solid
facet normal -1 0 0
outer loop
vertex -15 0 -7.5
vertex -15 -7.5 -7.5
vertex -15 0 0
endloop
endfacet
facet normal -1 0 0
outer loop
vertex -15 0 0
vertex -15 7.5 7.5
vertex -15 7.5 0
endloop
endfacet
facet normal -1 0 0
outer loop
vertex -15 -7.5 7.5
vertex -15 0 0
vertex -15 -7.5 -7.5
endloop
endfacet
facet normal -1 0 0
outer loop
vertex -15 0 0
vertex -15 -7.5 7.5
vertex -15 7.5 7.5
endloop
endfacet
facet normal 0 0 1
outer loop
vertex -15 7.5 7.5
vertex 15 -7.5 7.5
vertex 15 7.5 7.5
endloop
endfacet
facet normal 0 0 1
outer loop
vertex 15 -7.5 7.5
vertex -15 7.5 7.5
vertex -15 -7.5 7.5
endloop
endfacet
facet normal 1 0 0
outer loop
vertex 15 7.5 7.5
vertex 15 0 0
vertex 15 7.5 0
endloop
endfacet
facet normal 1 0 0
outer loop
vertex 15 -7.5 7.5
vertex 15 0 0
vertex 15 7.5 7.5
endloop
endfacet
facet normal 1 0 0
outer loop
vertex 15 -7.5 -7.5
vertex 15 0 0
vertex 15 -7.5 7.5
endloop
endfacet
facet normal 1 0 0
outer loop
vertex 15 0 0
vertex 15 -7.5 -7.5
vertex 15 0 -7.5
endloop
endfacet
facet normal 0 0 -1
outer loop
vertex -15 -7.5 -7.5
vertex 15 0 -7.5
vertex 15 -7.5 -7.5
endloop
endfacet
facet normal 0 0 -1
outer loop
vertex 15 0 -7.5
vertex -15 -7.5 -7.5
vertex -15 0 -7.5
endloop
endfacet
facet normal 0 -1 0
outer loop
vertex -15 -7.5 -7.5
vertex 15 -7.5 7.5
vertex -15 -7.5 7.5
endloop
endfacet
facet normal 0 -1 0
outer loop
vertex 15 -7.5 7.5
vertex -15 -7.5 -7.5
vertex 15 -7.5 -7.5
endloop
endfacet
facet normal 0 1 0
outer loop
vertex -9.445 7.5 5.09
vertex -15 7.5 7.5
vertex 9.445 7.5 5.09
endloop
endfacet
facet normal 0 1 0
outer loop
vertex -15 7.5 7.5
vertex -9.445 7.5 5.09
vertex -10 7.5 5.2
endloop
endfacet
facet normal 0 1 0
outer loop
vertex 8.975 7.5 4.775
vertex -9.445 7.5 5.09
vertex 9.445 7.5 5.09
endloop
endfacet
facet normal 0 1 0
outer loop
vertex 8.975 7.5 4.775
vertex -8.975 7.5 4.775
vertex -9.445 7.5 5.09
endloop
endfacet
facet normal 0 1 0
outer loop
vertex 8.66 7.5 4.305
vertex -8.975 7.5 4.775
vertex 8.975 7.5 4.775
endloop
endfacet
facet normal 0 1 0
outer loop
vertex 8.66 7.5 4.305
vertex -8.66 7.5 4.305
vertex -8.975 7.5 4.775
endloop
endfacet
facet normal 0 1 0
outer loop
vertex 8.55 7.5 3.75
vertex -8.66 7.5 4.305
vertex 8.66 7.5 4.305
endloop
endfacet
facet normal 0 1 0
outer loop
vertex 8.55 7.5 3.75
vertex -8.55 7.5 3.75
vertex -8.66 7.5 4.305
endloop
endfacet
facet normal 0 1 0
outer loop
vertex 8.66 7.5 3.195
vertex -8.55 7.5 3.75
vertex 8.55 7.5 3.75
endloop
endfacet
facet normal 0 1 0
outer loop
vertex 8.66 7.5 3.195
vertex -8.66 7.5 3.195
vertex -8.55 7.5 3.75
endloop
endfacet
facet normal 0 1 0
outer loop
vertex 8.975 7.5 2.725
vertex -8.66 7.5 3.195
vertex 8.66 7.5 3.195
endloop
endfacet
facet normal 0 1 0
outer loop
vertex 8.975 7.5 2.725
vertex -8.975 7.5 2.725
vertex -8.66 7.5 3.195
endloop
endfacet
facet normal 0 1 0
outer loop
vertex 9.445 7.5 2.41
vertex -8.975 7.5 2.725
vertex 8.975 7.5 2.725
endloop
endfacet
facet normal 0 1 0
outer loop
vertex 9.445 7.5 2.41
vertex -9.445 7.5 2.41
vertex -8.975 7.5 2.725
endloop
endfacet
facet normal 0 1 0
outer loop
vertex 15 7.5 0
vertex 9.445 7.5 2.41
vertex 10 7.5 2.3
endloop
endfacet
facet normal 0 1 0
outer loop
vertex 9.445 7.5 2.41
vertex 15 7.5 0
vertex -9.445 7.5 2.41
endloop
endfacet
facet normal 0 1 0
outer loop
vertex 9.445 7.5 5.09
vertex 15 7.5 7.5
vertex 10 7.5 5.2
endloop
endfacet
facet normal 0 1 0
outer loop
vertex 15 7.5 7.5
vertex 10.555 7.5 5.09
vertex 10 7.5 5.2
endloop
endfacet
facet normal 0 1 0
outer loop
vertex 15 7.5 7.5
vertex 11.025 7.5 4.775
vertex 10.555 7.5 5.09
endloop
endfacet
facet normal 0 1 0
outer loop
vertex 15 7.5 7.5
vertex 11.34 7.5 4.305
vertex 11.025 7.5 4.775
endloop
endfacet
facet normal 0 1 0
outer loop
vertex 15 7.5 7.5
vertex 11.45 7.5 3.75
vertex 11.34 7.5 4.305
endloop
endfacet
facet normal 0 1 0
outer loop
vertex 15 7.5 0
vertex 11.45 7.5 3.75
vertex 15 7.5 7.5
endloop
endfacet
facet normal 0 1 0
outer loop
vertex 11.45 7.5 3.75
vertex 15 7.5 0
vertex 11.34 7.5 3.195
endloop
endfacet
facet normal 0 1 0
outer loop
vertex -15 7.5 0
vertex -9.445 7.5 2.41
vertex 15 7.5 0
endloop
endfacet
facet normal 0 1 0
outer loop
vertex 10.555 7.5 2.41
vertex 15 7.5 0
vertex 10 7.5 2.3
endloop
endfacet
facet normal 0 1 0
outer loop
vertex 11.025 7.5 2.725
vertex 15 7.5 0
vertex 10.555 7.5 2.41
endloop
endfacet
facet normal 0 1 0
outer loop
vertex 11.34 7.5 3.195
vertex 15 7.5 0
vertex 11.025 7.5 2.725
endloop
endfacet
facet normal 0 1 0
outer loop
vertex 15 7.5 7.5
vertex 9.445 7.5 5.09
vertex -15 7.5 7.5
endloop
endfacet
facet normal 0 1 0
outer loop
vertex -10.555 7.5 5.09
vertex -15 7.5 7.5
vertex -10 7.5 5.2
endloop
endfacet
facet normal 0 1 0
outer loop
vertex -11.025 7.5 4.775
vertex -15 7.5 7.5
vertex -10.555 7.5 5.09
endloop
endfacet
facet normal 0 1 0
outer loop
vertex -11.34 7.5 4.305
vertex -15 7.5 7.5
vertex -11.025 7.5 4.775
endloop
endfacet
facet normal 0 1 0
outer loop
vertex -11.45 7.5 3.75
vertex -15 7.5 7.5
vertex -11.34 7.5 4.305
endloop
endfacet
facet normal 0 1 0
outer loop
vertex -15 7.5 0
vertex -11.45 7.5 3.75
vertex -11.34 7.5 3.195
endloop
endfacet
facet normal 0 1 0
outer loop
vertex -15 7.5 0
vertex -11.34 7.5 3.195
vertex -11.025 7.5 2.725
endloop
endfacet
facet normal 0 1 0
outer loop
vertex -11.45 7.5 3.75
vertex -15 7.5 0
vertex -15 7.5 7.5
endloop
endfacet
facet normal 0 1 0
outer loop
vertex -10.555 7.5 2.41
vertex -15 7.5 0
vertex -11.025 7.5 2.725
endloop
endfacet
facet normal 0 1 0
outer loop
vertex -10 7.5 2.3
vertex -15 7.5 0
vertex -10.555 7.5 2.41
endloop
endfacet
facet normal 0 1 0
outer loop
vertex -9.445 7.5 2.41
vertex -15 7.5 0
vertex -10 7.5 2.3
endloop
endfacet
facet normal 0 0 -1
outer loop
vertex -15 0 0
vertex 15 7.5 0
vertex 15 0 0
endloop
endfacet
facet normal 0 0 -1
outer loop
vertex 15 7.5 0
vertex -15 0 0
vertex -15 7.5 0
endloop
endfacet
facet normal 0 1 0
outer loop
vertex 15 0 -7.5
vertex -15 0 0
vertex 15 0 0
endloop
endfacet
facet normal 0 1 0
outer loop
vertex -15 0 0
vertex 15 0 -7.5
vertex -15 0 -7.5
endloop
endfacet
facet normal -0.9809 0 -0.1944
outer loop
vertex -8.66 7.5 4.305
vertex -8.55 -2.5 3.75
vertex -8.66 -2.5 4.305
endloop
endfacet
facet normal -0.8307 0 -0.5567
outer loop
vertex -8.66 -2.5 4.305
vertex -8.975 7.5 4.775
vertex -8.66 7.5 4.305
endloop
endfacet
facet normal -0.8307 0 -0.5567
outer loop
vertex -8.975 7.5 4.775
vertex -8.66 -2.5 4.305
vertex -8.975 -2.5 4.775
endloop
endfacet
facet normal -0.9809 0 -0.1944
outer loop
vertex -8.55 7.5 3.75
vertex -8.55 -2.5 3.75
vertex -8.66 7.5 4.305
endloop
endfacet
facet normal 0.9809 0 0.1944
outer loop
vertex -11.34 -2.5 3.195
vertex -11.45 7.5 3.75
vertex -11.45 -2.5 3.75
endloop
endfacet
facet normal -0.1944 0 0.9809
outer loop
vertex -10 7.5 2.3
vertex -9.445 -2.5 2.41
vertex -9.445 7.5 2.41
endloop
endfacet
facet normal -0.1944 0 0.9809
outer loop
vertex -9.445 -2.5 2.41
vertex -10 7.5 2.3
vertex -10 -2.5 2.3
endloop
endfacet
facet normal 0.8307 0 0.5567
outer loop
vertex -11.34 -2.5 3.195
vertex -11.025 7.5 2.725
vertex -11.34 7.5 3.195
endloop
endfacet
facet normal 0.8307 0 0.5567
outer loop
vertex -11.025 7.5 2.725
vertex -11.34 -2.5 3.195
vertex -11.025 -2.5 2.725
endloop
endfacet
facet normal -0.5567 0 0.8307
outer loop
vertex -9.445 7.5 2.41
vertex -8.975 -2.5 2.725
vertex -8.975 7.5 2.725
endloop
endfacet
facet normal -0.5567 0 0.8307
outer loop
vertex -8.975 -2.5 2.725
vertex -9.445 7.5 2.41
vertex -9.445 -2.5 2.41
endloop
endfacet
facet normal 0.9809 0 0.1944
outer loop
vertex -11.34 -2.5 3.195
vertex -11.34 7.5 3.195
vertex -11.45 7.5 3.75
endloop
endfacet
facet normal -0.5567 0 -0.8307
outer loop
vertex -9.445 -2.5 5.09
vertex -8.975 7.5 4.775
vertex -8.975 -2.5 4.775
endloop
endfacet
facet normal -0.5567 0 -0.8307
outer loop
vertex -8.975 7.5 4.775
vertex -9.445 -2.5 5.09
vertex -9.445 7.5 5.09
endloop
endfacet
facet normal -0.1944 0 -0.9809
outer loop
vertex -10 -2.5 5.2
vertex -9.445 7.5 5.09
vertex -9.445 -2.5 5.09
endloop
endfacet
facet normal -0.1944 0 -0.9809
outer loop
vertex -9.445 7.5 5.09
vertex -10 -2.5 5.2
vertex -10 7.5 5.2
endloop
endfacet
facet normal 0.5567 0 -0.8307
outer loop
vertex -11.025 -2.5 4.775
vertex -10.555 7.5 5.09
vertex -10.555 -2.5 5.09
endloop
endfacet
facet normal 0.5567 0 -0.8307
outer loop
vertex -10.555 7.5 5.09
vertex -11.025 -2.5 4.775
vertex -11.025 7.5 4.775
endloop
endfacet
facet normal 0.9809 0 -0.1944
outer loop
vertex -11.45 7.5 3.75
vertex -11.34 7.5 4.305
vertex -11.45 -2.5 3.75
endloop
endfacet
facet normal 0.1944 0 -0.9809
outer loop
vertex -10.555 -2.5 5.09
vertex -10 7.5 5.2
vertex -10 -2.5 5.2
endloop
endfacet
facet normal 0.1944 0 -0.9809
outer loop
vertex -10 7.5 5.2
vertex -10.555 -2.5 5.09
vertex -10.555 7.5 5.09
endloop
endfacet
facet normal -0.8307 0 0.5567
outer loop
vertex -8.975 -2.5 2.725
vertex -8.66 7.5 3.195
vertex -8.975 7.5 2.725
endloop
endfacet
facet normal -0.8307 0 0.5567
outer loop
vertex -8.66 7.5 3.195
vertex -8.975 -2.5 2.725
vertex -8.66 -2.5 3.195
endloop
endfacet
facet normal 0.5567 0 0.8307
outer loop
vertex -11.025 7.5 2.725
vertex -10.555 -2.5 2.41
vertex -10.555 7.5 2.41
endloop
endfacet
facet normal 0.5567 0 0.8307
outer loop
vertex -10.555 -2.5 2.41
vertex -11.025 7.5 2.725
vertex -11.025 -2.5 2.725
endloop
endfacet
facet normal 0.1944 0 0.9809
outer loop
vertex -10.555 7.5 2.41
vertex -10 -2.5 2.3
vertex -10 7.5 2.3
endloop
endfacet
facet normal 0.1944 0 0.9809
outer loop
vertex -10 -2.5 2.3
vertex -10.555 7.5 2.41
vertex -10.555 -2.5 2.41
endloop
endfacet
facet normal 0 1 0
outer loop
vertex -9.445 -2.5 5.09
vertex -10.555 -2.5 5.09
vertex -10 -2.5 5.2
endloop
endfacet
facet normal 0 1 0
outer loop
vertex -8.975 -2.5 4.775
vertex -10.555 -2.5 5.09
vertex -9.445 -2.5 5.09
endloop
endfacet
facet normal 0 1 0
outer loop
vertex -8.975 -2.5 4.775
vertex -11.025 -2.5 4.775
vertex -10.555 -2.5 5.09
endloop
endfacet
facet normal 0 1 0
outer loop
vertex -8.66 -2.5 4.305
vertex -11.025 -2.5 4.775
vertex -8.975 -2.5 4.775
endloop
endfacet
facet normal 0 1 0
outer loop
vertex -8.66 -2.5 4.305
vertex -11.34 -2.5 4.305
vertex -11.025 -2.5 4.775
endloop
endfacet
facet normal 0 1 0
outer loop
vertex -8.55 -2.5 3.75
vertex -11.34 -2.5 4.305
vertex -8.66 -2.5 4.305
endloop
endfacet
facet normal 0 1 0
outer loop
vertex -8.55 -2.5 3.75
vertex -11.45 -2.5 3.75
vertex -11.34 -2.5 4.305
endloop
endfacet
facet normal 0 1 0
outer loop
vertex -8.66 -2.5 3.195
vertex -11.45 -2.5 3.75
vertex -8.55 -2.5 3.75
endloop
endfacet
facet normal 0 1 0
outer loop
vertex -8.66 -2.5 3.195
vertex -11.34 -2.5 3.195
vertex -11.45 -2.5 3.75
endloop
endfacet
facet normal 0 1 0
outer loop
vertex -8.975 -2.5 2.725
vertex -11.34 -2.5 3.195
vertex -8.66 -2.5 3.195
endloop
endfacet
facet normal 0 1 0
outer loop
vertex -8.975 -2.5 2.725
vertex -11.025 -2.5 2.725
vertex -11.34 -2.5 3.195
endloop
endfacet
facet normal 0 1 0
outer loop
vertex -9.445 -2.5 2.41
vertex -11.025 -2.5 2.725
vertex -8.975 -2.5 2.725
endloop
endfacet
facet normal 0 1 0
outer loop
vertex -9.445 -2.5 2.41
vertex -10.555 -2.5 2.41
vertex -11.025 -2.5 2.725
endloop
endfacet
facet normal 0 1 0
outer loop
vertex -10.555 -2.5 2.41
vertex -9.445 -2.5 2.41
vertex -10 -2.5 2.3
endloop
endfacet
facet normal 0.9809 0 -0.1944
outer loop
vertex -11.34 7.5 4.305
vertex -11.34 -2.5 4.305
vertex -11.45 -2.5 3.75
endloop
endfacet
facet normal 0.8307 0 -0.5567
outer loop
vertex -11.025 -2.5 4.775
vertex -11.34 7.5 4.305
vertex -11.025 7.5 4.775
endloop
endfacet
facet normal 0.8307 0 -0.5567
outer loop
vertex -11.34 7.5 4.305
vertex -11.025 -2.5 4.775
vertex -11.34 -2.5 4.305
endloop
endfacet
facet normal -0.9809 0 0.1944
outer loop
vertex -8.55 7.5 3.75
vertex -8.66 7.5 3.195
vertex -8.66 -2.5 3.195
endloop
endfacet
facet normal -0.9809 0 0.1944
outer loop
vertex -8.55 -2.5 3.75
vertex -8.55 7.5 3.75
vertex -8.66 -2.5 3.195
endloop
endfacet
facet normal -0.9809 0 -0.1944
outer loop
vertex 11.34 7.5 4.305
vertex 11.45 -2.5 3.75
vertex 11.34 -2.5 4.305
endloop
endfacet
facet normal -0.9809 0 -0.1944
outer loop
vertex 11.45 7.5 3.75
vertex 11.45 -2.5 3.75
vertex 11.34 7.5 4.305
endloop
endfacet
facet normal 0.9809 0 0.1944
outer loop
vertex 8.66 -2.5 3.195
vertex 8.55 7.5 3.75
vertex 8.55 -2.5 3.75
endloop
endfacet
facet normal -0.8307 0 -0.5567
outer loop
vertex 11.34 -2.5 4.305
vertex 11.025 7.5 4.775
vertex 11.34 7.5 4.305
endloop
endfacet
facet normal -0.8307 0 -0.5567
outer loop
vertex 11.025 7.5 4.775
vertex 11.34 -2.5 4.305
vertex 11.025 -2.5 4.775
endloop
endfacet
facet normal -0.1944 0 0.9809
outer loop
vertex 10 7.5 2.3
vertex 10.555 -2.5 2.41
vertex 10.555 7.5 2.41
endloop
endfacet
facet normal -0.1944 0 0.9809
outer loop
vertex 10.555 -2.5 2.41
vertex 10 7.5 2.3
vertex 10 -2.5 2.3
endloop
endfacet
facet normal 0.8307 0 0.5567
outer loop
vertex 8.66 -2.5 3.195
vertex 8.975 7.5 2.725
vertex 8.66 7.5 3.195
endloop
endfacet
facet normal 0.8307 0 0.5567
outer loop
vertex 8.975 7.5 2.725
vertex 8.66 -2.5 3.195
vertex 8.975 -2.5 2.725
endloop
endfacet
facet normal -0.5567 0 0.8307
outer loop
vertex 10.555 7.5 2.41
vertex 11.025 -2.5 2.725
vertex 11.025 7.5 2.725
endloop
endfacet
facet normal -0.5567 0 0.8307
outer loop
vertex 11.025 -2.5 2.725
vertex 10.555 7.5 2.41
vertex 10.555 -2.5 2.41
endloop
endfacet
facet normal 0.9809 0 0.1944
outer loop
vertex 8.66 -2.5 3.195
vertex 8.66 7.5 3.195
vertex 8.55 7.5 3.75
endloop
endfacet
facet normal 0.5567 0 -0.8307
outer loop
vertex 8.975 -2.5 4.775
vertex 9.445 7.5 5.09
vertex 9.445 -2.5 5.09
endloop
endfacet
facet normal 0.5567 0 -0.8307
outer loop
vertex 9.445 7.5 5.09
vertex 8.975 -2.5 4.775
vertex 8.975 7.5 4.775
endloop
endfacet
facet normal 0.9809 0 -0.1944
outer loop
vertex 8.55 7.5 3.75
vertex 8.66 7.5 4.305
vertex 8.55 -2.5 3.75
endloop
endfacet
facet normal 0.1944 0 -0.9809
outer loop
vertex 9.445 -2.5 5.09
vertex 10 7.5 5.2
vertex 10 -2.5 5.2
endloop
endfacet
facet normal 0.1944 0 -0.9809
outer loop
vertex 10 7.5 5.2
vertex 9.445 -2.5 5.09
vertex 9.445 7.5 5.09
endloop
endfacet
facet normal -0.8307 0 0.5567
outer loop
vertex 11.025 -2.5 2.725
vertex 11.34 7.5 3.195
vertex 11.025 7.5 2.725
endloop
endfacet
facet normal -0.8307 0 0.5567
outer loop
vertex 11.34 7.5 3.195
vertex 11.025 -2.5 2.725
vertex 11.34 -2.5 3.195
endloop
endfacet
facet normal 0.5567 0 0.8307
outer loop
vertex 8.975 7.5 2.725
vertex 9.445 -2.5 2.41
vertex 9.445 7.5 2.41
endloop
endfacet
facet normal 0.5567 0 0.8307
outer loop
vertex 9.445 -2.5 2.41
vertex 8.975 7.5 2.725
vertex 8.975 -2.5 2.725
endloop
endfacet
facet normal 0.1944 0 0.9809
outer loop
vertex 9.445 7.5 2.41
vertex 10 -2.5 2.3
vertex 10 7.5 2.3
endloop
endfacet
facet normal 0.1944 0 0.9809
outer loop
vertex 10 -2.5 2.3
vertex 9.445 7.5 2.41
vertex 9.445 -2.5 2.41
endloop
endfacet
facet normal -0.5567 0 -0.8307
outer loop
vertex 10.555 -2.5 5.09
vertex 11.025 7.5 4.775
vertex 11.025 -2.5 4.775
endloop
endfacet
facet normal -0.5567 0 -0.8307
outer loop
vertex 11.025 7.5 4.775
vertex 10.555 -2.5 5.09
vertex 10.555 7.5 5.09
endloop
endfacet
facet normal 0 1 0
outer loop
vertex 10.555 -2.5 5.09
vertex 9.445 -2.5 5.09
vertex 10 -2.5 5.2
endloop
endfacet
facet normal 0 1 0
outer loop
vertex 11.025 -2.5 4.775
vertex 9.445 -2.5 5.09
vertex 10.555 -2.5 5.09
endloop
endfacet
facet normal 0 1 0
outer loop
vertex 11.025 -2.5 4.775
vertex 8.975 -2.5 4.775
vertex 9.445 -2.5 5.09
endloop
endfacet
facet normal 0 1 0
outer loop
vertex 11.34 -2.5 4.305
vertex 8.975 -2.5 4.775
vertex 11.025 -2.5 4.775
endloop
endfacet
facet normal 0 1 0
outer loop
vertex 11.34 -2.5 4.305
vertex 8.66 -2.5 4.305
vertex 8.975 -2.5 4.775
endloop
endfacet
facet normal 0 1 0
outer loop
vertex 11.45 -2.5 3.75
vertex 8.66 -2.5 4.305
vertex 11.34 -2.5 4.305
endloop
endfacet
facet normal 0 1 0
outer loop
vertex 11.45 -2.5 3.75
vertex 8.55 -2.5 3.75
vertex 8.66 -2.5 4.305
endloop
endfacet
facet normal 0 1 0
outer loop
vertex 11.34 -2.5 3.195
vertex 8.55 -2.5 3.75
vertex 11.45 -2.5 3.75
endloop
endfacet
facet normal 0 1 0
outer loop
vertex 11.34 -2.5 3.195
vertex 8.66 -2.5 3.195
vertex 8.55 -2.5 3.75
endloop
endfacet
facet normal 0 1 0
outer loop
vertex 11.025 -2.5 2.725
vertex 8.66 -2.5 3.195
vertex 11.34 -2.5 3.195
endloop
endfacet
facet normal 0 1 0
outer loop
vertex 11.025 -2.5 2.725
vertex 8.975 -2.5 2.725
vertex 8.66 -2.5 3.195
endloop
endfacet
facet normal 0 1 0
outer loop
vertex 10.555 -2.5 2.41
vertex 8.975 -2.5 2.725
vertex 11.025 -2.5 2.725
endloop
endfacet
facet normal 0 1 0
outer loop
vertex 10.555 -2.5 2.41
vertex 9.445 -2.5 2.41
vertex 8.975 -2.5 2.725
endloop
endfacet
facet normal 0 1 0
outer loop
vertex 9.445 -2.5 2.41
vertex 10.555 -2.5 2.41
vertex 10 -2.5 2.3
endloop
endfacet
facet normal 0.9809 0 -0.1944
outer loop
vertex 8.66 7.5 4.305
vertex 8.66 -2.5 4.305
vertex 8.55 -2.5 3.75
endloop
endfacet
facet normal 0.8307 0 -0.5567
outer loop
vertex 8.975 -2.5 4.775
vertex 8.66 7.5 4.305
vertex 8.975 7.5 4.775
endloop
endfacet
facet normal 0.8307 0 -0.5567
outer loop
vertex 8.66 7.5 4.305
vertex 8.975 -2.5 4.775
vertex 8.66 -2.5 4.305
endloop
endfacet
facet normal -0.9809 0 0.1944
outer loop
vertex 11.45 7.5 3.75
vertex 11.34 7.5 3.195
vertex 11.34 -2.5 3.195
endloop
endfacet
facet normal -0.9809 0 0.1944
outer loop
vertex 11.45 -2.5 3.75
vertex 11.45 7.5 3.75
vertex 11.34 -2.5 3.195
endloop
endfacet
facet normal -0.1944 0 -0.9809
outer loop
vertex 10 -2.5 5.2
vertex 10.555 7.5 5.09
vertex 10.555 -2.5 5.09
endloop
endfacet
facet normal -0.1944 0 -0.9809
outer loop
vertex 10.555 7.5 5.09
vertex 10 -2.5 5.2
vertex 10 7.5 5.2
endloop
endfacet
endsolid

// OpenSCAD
holesDistance=20;
screwDiameter=2.9;
screwLength=12;
boxThickness=3;

handleWidth=30;
handleDepth=15;
handleHeight=15;

fn=16;

difference(){
  cube([handleWidth, handleDepth, handleHeight], center=true);
  translate([0, handleDepth/4, -handleHeight/4])cube([handleWidth, handleDepth/2, handleHeight/2], center=true);
  
  //Screw Holes
  translate([-holesDistance/2, handleDepth/2-(screwLength-boxThickness+1)/2, handleHeight/4])rotate([90, 0, 0])cylinder($fn=fn, d=screwDiameter, h=screwLength-boxThickness+1, center=true);
    translate([holesDistance/2, handleDepth/2-(screwLength-boxThickness+1)/2, handleHeight/4])rotate([90, 0, 0])cylinder($fn=fn, d=screwDiameter, h=screwLength-boxThickness+1, center=true);
}
